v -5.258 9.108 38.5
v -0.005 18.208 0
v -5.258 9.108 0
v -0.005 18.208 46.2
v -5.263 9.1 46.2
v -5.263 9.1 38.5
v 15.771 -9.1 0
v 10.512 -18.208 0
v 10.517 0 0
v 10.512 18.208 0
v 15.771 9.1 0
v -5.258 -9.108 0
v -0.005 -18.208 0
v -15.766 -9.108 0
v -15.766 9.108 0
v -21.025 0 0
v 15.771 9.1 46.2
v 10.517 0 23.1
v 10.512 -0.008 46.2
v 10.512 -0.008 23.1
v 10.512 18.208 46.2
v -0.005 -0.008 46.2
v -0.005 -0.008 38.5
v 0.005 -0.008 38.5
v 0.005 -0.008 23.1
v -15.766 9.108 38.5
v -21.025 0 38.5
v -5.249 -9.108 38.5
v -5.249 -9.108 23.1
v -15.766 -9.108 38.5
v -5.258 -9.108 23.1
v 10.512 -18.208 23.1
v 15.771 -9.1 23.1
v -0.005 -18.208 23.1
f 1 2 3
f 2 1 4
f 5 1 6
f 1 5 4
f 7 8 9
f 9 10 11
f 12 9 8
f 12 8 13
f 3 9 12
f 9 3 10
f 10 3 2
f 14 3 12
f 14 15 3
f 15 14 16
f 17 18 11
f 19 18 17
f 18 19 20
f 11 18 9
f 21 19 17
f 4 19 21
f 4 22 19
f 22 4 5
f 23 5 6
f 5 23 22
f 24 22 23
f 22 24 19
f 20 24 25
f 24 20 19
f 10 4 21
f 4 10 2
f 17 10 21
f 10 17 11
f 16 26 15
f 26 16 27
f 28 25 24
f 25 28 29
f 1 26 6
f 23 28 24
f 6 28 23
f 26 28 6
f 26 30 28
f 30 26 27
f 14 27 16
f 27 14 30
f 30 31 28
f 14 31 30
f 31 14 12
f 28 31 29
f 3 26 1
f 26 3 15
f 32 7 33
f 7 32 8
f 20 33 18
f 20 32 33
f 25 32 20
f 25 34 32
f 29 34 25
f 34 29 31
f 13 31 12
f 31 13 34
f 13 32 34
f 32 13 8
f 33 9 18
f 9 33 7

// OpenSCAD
// file: dimensions.scad
measureX = 9.10; // 92/2/2/sqrt(19)*sqrt(3)
measureY = 9.10; 
measureZ = 7.7; // 54/7 is about 7.7

halfSide = 1*tan(30);
h1 = 1;
dd = 0.001;
// main file
include <dimensions.scad>

hh = [6,5,3];

scale([measureX,measureY,measureZ])  union() {
    translate([halfSide,1,0]) 
    linear_extrude(height = hh[0]*h1, center = false)
    circle(2*halfSide + dd,$fn=6);
    
    translate([-2*halfSide,0,0]) 
    linear_extrude(height = hh[1]*h1, center = false)
    circle(2*halfSide + dd,$fn=6);
    
    translate([halfSide,-1,0]) 
    linear_extrude(height = hh[2]*h1, center = false)
    circle(2*halfSide + dd,$fn=6);
}
